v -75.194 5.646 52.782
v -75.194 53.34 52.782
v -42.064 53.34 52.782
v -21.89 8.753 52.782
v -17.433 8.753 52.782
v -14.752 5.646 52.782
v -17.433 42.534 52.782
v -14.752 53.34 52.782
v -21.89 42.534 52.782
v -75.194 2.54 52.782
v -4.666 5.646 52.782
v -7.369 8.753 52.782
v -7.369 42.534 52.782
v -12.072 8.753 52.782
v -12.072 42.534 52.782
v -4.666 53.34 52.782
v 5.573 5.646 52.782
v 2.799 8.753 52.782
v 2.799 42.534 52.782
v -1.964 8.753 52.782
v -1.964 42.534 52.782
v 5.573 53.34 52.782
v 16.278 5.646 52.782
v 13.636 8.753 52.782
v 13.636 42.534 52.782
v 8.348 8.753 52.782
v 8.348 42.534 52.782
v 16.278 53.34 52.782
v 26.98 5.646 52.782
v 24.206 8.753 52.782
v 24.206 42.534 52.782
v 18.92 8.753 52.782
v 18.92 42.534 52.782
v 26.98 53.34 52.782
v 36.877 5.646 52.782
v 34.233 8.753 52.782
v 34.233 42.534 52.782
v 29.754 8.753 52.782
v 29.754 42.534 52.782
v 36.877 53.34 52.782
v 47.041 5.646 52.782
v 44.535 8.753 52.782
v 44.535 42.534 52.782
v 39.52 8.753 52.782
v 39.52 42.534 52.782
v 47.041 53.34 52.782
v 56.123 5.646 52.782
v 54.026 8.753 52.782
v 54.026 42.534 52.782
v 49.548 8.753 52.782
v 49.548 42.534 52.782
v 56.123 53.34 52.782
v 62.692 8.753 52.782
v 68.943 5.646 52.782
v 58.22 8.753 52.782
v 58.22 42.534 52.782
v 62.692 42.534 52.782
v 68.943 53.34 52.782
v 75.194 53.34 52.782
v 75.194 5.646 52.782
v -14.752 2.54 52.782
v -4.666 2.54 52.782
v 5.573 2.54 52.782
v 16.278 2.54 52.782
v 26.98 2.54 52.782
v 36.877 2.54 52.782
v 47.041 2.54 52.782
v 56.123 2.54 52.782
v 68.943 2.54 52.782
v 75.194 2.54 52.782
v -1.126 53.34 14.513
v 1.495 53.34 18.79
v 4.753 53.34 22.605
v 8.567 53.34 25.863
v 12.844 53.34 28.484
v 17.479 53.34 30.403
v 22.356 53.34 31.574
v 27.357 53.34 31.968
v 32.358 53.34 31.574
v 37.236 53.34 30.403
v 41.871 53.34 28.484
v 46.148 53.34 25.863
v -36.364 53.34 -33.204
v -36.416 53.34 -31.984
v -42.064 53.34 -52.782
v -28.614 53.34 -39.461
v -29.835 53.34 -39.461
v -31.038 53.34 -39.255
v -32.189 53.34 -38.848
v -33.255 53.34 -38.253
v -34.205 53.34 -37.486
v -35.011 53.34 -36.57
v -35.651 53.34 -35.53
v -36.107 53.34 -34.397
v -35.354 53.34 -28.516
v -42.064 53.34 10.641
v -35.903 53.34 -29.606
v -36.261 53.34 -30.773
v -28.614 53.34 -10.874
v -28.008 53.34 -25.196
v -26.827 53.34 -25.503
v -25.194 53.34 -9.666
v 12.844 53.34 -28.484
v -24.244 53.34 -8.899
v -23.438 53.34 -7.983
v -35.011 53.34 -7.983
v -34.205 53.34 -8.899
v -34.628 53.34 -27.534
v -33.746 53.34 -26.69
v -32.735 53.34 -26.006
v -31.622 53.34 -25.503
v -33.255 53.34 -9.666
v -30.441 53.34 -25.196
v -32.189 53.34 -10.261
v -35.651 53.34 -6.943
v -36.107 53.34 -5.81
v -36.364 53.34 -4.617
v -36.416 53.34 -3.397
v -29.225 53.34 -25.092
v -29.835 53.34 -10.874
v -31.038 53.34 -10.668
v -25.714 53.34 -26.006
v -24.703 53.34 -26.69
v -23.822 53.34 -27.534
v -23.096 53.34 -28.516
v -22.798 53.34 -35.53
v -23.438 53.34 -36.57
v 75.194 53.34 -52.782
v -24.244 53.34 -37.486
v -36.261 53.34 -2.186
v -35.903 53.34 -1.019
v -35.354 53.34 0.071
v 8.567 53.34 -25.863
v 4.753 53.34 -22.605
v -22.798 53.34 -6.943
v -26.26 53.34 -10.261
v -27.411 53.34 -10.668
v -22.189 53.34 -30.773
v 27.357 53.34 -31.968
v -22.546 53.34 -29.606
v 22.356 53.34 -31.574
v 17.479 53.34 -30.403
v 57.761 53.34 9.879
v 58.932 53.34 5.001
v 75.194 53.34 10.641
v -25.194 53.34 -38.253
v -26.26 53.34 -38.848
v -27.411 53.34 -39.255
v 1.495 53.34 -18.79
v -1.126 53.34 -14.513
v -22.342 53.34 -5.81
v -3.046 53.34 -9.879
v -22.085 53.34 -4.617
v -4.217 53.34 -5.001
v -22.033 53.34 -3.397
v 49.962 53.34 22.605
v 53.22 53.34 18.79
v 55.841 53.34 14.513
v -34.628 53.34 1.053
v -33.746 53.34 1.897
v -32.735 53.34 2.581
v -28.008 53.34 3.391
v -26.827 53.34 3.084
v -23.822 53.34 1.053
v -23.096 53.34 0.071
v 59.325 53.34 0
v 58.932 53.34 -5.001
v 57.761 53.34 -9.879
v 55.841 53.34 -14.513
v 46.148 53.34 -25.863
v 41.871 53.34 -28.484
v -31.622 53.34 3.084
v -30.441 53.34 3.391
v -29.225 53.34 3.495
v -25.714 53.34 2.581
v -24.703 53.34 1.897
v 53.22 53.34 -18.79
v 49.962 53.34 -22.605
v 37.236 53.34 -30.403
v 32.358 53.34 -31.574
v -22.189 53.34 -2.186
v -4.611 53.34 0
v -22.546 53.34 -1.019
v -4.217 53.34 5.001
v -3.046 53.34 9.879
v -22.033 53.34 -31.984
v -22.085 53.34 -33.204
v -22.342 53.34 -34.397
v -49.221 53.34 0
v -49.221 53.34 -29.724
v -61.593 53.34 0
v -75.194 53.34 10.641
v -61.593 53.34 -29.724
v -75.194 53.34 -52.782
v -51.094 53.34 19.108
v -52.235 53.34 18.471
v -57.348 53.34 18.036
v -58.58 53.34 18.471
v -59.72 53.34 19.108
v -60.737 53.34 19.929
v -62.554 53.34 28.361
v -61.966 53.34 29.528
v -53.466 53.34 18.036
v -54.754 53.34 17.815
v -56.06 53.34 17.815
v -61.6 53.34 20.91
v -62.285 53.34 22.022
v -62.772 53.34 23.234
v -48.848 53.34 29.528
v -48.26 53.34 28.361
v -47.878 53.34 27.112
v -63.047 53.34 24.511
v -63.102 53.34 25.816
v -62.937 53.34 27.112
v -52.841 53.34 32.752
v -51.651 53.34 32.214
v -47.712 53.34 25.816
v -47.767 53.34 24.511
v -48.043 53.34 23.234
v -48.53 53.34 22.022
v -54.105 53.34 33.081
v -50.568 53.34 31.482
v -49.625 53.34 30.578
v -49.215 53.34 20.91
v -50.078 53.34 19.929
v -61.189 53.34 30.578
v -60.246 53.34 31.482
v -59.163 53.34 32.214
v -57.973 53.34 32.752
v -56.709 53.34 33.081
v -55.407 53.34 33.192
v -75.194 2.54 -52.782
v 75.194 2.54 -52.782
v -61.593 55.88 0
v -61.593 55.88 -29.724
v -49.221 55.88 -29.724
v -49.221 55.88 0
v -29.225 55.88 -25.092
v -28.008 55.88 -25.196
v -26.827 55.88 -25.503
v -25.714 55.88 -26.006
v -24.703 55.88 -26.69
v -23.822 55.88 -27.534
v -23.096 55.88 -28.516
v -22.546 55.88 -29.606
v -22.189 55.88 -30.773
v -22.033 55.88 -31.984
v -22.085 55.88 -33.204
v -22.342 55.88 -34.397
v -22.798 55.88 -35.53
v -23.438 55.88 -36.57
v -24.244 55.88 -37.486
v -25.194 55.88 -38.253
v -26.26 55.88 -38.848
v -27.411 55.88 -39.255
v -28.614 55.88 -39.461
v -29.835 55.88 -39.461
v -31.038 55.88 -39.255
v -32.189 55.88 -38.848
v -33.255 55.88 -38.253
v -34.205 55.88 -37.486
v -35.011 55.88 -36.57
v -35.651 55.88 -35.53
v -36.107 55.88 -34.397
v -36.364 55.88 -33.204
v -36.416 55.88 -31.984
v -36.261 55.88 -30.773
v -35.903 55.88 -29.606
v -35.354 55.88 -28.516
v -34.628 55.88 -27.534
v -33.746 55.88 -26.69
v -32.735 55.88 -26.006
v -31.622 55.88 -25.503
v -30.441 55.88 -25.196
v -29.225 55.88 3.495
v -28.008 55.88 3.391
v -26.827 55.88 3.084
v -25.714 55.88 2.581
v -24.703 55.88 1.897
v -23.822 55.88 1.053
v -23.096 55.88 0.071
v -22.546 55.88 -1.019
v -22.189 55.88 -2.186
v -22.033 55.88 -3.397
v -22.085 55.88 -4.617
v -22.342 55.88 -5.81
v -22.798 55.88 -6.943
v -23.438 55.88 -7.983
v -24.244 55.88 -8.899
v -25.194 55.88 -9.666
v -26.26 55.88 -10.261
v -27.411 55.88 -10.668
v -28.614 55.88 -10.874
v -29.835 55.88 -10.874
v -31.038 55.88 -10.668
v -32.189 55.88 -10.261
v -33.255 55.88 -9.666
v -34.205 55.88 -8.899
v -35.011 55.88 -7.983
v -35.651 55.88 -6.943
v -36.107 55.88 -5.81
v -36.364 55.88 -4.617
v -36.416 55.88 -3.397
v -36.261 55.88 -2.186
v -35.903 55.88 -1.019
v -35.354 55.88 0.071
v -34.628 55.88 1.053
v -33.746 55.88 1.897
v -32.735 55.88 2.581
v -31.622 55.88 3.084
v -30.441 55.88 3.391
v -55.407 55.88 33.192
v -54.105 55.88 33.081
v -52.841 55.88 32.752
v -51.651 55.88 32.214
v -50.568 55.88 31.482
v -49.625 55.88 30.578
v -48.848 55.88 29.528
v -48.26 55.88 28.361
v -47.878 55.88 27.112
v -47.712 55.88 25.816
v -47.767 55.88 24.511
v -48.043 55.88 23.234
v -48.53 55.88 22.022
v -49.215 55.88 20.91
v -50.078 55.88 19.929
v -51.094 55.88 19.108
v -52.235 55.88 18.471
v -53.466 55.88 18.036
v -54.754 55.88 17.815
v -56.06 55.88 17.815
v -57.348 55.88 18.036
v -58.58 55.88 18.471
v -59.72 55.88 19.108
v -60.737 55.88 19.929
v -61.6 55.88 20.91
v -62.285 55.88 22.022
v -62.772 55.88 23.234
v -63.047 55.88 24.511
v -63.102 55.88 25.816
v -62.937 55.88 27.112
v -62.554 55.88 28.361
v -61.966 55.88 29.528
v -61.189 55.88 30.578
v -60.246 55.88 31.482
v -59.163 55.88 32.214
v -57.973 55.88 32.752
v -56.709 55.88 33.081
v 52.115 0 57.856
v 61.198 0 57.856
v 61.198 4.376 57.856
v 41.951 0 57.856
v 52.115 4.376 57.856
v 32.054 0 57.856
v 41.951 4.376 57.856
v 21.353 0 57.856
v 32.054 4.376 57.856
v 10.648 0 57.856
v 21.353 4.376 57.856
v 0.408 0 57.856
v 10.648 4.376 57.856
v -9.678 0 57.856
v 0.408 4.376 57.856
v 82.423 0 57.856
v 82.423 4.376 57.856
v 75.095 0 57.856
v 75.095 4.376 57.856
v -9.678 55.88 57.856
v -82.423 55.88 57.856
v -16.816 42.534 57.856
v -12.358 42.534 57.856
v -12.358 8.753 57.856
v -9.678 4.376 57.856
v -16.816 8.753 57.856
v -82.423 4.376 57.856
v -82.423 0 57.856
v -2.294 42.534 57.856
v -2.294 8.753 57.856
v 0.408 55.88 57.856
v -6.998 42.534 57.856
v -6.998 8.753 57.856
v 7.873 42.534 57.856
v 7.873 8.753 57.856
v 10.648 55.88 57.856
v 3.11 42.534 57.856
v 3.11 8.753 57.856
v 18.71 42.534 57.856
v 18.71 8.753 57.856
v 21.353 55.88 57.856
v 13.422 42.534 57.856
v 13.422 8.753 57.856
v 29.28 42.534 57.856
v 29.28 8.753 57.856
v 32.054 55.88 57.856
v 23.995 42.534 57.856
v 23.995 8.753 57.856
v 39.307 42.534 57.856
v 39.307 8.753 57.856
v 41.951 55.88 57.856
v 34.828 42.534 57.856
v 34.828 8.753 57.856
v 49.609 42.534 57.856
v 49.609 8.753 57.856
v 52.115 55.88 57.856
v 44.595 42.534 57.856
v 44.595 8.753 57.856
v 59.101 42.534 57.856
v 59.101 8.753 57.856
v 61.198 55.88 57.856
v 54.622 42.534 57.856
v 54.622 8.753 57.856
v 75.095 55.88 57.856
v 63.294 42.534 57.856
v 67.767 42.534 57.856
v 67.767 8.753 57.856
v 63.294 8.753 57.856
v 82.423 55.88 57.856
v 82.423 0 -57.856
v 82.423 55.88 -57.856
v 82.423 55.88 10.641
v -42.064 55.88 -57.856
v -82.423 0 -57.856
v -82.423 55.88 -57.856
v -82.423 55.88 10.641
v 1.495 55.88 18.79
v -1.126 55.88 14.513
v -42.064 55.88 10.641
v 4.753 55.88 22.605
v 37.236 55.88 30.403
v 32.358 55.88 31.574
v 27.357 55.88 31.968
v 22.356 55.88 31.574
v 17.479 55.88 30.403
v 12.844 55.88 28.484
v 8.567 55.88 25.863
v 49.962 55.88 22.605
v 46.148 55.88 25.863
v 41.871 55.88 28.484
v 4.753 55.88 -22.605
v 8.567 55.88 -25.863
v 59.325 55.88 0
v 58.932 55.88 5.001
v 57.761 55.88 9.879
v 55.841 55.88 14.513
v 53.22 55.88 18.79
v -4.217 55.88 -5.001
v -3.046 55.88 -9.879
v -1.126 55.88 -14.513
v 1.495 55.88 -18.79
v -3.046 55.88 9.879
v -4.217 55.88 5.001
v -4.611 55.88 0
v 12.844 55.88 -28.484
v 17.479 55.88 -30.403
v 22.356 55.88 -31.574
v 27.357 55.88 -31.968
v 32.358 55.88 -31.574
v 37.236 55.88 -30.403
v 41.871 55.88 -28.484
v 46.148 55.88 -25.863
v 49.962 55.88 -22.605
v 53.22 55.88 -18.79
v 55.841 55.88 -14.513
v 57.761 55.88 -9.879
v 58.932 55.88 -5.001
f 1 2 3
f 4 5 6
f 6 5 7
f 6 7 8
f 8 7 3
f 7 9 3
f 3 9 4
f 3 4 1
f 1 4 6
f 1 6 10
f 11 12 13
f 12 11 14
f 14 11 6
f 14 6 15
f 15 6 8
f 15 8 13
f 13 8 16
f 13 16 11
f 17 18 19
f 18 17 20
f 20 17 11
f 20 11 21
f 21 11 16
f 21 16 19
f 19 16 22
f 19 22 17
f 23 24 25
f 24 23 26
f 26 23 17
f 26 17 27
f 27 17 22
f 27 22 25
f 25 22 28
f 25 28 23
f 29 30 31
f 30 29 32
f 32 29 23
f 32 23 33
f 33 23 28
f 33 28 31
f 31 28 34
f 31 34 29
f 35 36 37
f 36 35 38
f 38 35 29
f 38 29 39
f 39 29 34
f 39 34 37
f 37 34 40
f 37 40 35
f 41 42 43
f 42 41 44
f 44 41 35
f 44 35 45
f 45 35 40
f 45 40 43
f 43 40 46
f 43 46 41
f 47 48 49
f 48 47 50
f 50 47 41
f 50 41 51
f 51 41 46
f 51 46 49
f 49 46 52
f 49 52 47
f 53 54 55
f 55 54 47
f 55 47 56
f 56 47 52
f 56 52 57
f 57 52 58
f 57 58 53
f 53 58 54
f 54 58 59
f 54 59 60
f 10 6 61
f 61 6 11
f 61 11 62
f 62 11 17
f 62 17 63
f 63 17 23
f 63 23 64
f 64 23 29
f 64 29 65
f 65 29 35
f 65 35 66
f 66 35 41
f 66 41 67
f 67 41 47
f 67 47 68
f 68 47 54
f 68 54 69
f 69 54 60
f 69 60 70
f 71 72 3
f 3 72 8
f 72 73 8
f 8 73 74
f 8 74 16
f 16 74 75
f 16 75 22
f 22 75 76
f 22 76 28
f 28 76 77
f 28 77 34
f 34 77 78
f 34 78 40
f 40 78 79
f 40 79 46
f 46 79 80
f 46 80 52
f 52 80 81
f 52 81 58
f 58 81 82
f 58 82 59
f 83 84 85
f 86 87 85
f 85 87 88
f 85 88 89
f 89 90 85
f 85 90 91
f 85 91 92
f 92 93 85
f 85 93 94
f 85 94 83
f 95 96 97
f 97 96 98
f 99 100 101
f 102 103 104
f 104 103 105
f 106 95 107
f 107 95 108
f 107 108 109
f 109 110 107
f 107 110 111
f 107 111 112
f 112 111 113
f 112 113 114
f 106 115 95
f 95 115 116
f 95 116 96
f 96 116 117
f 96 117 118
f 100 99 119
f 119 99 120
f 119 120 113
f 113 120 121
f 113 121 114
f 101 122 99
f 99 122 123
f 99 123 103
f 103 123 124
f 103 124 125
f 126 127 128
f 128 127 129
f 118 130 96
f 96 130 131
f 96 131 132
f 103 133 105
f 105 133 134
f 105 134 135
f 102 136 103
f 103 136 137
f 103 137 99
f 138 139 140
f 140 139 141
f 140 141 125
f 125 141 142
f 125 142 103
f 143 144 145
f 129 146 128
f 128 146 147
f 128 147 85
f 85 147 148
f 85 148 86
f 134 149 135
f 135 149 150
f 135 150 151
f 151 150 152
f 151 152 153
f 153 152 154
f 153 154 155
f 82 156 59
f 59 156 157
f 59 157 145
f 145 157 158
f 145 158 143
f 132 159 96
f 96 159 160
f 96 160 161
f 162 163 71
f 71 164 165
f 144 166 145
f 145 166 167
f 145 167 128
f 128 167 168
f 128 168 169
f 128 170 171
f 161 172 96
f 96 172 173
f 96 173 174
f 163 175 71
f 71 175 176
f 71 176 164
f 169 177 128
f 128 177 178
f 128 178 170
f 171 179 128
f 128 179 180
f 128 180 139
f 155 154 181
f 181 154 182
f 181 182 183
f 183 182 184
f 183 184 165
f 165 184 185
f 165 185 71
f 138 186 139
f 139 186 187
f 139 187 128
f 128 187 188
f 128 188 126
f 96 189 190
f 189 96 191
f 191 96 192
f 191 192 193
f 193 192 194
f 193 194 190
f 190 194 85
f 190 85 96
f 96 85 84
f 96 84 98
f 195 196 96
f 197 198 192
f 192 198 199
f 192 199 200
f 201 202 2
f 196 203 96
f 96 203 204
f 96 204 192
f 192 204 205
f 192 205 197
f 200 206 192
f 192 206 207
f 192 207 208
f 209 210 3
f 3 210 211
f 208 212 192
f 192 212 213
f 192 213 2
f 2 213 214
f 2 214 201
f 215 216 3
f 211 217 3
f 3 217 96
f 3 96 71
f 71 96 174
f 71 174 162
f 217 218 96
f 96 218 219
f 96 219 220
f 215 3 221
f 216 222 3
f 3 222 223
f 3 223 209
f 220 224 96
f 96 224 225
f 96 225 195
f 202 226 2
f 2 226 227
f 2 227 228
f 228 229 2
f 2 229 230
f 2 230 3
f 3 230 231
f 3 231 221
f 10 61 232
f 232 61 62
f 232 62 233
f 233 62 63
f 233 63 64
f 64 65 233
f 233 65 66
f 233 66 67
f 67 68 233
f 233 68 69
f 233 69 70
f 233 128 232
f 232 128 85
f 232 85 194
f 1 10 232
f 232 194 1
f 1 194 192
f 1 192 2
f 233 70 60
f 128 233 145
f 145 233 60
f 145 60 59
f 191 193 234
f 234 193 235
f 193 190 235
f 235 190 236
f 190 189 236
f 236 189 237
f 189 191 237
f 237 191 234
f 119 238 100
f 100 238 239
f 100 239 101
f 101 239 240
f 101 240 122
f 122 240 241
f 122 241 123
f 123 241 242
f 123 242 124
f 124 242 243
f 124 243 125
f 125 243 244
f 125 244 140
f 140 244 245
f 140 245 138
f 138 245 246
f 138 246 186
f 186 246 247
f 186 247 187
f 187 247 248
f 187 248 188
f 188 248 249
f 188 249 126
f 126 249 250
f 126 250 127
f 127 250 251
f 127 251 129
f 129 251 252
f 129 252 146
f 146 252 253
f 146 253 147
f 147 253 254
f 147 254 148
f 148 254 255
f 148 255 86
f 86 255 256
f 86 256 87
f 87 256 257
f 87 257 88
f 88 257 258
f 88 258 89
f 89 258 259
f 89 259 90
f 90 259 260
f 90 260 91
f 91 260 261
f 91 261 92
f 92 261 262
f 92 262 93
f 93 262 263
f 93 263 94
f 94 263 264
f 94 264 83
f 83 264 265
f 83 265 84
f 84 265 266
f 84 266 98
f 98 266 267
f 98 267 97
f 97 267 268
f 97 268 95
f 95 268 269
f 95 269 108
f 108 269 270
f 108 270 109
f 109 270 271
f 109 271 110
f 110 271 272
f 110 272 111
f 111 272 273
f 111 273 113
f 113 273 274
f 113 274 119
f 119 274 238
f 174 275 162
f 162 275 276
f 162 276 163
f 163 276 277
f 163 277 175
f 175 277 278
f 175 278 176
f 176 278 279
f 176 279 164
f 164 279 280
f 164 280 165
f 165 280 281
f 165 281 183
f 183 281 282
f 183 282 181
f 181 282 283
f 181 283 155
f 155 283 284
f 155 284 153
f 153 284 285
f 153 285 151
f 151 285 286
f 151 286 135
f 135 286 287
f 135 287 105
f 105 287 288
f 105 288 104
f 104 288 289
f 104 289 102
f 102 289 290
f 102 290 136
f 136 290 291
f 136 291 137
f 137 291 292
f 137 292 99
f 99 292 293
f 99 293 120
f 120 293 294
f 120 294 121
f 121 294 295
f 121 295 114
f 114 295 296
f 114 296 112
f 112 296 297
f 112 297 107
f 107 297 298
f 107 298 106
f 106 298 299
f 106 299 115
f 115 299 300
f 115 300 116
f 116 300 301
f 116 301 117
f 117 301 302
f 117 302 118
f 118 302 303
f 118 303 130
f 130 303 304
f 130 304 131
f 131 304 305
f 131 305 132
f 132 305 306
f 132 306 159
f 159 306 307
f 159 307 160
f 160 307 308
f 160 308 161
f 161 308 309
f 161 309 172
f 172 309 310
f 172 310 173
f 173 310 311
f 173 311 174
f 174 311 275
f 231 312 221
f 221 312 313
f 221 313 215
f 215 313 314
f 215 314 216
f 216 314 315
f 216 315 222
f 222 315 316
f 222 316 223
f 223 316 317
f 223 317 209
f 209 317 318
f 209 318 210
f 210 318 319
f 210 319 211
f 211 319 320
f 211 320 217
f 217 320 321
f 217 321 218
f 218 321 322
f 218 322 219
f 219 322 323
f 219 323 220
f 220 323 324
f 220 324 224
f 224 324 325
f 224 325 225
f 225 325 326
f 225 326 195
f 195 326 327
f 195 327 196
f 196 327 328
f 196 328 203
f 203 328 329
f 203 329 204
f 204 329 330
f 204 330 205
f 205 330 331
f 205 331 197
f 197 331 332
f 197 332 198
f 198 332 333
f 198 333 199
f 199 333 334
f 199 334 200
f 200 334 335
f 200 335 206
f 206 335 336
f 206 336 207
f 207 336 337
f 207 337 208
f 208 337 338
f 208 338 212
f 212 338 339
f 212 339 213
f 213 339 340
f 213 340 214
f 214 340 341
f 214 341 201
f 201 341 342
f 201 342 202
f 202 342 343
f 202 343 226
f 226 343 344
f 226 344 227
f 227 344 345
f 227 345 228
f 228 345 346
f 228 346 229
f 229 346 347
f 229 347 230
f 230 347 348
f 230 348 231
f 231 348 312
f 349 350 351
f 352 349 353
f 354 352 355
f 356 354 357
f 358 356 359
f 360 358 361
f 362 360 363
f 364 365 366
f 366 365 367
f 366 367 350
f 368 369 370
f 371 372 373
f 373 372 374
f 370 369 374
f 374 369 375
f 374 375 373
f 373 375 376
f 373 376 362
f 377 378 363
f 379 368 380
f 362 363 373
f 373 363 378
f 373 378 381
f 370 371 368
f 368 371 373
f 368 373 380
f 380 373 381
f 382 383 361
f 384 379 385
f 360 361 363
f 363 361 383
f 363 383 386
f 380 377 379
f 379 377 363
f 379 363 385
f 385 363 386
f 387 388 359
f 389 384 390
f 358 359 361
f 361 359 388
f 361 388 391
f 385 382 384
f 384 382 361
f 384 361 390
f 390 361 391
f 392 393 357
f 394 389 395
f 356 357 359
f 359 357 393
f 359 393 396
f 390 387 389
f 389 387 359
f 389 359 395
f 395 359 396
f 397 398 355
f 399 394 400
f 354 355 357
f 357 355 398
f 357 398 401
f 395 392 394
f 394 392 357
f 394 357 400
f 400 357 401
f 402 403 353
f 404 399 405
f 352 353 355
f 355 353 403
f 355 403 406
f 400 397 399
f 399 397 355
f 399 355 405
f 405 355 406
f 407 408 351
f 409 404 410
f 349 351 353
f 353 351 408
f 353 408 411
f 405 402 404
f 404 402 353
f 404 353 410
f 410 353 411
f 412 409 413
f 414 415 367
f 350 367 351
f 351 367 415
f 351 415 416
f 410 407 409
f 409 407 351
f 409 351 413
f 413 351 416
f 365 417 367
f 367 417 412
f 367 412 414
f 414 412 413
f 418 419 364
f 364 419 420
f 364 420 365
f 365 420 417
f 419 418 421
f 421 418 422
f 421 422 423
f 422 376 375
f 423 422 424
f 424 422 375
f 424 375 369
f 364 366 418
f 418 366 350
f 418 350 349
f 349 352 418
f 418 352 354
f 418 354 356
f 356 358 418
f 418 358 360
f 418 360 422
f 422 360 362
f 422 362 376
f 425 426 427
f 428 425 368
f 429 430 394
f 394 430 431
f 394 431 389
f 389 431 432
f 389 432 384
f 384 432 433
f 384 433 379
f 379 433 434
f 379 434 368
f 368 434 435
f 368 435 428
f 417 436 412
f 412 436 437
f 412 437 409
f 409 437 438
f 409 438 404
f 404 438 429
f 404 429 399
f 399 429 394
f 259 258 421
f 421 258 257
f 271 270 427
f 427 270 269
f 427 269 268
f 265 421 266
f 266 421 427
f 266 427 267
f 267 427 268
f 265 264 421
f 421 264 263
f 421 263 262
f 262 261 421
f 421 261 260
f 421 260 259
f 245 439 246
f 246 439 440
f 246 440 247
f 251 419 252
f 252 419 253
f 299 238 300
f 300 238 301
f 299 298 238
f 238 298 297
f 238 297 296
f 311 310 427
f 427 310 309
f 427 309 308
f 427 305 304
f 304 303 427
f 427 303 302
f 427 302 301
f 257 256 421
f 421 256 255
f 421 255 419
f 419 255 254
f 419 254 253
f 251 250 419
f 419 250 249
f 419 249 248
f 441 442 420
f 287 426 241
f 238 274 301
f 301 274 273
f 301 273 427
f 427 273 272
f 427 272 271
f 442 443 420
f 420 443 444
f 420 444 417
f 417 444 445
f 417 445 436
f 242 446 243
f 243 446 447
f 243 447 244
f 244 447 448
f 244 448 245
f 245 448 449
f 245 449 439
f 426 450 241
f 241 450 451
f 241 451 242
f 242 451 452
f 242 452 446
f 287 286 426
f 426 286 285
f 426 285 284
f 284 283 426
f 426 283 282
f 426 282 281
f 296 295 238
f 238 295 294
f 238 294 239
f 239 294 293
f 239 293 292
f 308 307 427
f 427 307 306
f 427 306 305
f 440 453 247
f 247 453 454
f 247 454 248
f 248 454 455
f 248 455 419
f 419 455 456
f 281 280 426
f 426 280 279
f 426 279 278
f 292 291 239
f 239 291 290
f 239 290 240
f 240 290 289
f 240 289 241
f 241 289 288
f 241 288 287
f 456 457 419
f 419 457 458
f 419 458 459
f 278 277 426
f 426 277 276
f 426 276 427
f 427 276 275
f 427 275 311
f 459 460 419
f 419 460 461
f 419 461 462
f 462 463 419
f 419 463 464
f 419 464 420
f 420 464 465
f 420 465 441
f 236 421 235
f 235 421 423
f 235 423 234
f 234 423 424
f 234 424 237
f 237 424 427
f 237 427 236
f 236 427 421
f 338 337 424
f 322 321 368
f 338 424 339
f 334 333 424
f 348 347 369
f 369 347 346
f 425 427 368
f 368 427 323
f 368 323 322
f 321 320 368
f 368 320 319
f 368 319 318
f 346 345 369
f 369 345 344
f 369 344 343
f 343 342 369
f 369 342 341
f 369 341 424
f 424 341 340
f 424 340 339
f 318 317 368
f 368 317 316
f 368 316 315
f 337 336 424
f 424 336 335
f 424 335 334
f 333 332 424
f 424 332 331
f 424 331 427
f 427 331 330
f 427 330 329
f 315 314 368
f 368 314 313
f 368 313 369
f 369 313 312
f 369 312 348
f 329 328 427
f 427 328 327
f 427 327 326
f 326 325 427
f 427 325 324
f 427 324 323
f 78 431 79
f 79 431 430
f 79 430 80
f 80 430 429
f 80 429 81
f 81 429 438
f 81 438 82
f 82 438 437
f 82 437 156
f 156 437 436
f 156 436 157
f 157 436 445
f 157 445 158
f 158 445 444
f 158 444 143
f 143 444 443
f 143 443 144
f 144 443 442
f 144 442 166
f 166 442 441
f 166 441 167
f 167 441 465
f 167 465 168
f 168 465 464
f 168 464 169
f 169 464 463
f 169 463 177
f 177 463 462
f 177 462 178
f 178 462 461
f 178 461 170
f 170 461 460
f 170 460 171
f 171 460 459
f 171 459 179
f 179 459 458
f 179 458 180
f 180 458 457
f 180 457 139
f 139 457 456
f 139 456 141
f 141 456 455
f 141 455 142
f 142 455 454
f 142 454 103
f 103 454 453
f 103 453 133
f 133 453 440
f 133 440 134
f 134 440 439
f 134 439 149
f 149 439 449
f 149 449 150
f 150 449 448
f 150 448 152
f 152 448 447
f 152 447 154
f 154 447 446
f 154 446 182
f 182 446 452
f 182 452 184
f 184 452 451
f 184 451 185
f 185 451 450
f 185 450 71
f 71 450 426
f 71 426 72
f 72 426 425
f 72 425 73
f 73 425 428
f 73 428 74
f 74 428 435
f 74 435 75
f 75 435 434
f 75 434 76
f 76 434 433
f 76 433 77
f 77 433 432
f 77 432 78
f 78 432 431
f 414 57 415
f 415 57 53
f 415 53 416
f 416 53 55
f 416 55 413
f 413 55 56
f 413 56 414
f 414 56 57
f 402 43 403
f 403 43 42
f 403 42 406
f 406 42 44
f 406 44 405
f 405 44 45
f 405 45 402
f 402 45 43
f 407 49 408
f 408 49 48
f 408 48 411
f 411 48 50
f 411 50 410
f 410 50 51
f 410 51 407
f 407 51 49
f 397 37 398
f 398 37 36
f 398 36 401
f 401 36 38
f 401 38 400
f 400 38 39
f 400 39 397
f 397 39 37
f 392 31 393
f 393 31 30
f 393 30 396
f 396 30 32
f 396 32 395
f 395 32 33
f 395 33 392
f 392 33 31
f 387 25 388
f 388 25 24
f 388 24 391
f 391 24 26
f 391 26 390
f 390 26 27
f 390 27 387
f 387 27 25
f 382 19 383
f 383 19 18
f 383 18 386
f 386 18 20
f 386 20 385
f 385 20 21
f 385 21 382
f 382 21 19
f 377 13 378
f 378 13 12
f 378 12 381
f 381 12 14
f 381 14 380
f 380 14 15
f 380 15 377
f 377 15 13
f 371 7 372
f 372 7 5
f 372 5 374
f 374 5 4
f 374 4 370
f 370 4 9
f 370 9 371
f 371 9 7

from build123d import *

# Parameters (mm, degrees)
SKETCH1_W           = 164.845307866
SKETCH1_H           = 115.711925012
SKETCH1_W_2         = 150.387290324
SKETCH1_H_2         = 105.563228254
BOSS_EXTRUDE1_DEPTH = 2.54
SKETCH1_3_W         = 164.845307866
SKETCH1_3_H         = 115.711925012
SKETCH1_3_W_2       = 150.387290324
SKETCH1_3_H_2       = 105.563228254
BOSS_EXTRUDE2_DEPTH = 53.34
BOSS_EXTRUDE3_START = 53.34
SKETCH1_4_W         = 164.845307866
SKETCH1_4_H         = 115.711925012
SKETCH1_4_W_2       = 150.387290324
SKETCH1_4_H_2       = 105.563228254
BOSS_EXTRUDE3_DEPTH = 2.54
SKETCH2_R           = 31.968042231
SKETCH2_R_2         = 7.197604608
SKETCH2_R_3         = 7.702224934
SKETCH2_W           = 12.372659968
SKETCH2_H           = 29.724433098
CUT_EXTRUDE1_DEPTH  = 2.54
SKETCH3_W           = 4.472305678
SKETCH3_H           = 33.780947159
SKETCH3_W_2         = 4.478852124
SKETCH3_W_3         = 5.014326271
SKETCH3_W_4         = 5.285336568
SKETCH3_W_5         = 5.288609791
SKETCH3_W_6         = 4.762955313
SKETCH3_W_7         = 4.703323858
SKETCH3_W_8         = 4.457199363
CUT_EXTRUDE2_DEPTH  = 81.820687539


with BuildPart() as part:
    # Sketch1 → Boss-Extrude1 (new body)
    with BuildSketch(Plane(origin=(0, 0, 0), x_dir=(1, 0, 0), z_dir=(0, 1, 0))):
        Rectangle(SKETCH1_W, SKETCH1_H)
        Rectangle(SKETCH1_W_2, SKETCH1_H_2, mode=Mode.SUBTRACT)
        Rectangle(SKETCH1_W_2, SKETCH1_H_2)
    extrude(amount=BOSS_EXTRUDE1_DEPTH)

    # Sketch1<3> → Boss-Extrude2 (add)
    with BuildSketch(Plane(origin=(0, 0, 0), x_dir=(1, 0, 0), z_dir=(0, 1, 0))):
        Rectangle(SKETCH1_3_W, SKETCH1_3_H)
        Rectangle(SKETCH1_3_W_2, SKETCH1_3_H_2, mode=Mode.SUBTRACT)
    extrude(amount=BOSS_EXTRUDE2_DEPTH)

    # Sketch1<4> → Boss-Extrude3 (add)
    with BuildSketch(Plane(origin=(0, 0, 0), x_dir=(1, 0, 0), z_dir=(0, 1, 0)).offset(BOSS_EXTRUDE3_START)):
        Rectangle(SKETCH1_4_W, SKETCH1_4_H)
        Rectangle(SKETCH1_4_W_2, SKETCH1_4_H_2, mode=Mode.SUBTRACT)
        Rectangle(SKETCH1_4_W_2, SKETCH1_4_H_2)
    extrude(amount=BOSS_EXTRUDE3_DEPTH)

    # Sketch2 → Cut-Extrude1 (cut)
    with BuildSketch(Plane(origin=(0, 55.88, 0), x_dir=(1, 0, 0), z_dir=(0, 1, 0))):
        with Locations(Location((27.35736774, 0, 0), (0, 0, 270))):
            Circle(SKETCH2_R)
        with Locations(Location((-29.22455859, 32.289622442, 0), (0, 0, 270))):
            Circle(SKETCH2_R_2)
        with Locations(Location((-29.22455859, 3.70269924, 0), (0, 0, 270))):
            Circle(SKETCH2_R_2)
        with Locations(Location((-55.407149161, -25.489564673, 0), (0, 0, 270))):
            Circle(SKETCH2_R_3)
        with Locations((-55.407149161, 14.862216549)):
            Rectangle(SKETCH2_W, SKETCH2_H)
    extrude(amount=-CUT_EXTRUDE1_DEPTH, mode=Mode.SUBTRACT)

    # Sketch3 → Cut-Extrude2 (cut, along a direction that is not the sketch's normal)
    with BuildSketch(Plane.XY.offset(57.855962506)):
        with Locations((65.530463392, 25.643218911)):
            Rectangle(SKETCH3_W, SKETCH3_H)
        with Locations((56.86140712, 25.643218911)):
            Rectangle(SKETCH3_W_2, SKETCH3_H)
        with Locations((47.101763215, 25.643218911)):
            Rectangle(SKETCH3_W_3, SKETCH3_H)
        with Locations((37.06783579, 25.643218911)):
            Rectangle(SKETCH3_W_2, SKETCH3_H)
        with Locations((26.637212589, 25.643218911)):
            Rectangle(SKETCH3_W_4, SKETCH3_H)
        with Locations((16.066174405, 25.643218911)):
            Rectangle(SKETCH3_W_5, SKETCH3_H)
        with Locations((5.491862999, 25.643218911)):
            Rectangle(SKETCH3_W_6, SKETCH3_H)
        with Locations((-4.645950069, 25.643218911)):
            Rectangle(SKETCH3_W_7, SKETCH3_H)
        with Locations((-14.58703369, 25.643218911)):
            Rectangle(SKETCH3_W_8, SKETCH3_H)
    extrude(amount=-CUT_EXTRUDE2_DEPTH, dir=(0.7071067811865475, 0, 0.7071067811865477), mode=Mode.SUBTRACT)


solid = part.part
